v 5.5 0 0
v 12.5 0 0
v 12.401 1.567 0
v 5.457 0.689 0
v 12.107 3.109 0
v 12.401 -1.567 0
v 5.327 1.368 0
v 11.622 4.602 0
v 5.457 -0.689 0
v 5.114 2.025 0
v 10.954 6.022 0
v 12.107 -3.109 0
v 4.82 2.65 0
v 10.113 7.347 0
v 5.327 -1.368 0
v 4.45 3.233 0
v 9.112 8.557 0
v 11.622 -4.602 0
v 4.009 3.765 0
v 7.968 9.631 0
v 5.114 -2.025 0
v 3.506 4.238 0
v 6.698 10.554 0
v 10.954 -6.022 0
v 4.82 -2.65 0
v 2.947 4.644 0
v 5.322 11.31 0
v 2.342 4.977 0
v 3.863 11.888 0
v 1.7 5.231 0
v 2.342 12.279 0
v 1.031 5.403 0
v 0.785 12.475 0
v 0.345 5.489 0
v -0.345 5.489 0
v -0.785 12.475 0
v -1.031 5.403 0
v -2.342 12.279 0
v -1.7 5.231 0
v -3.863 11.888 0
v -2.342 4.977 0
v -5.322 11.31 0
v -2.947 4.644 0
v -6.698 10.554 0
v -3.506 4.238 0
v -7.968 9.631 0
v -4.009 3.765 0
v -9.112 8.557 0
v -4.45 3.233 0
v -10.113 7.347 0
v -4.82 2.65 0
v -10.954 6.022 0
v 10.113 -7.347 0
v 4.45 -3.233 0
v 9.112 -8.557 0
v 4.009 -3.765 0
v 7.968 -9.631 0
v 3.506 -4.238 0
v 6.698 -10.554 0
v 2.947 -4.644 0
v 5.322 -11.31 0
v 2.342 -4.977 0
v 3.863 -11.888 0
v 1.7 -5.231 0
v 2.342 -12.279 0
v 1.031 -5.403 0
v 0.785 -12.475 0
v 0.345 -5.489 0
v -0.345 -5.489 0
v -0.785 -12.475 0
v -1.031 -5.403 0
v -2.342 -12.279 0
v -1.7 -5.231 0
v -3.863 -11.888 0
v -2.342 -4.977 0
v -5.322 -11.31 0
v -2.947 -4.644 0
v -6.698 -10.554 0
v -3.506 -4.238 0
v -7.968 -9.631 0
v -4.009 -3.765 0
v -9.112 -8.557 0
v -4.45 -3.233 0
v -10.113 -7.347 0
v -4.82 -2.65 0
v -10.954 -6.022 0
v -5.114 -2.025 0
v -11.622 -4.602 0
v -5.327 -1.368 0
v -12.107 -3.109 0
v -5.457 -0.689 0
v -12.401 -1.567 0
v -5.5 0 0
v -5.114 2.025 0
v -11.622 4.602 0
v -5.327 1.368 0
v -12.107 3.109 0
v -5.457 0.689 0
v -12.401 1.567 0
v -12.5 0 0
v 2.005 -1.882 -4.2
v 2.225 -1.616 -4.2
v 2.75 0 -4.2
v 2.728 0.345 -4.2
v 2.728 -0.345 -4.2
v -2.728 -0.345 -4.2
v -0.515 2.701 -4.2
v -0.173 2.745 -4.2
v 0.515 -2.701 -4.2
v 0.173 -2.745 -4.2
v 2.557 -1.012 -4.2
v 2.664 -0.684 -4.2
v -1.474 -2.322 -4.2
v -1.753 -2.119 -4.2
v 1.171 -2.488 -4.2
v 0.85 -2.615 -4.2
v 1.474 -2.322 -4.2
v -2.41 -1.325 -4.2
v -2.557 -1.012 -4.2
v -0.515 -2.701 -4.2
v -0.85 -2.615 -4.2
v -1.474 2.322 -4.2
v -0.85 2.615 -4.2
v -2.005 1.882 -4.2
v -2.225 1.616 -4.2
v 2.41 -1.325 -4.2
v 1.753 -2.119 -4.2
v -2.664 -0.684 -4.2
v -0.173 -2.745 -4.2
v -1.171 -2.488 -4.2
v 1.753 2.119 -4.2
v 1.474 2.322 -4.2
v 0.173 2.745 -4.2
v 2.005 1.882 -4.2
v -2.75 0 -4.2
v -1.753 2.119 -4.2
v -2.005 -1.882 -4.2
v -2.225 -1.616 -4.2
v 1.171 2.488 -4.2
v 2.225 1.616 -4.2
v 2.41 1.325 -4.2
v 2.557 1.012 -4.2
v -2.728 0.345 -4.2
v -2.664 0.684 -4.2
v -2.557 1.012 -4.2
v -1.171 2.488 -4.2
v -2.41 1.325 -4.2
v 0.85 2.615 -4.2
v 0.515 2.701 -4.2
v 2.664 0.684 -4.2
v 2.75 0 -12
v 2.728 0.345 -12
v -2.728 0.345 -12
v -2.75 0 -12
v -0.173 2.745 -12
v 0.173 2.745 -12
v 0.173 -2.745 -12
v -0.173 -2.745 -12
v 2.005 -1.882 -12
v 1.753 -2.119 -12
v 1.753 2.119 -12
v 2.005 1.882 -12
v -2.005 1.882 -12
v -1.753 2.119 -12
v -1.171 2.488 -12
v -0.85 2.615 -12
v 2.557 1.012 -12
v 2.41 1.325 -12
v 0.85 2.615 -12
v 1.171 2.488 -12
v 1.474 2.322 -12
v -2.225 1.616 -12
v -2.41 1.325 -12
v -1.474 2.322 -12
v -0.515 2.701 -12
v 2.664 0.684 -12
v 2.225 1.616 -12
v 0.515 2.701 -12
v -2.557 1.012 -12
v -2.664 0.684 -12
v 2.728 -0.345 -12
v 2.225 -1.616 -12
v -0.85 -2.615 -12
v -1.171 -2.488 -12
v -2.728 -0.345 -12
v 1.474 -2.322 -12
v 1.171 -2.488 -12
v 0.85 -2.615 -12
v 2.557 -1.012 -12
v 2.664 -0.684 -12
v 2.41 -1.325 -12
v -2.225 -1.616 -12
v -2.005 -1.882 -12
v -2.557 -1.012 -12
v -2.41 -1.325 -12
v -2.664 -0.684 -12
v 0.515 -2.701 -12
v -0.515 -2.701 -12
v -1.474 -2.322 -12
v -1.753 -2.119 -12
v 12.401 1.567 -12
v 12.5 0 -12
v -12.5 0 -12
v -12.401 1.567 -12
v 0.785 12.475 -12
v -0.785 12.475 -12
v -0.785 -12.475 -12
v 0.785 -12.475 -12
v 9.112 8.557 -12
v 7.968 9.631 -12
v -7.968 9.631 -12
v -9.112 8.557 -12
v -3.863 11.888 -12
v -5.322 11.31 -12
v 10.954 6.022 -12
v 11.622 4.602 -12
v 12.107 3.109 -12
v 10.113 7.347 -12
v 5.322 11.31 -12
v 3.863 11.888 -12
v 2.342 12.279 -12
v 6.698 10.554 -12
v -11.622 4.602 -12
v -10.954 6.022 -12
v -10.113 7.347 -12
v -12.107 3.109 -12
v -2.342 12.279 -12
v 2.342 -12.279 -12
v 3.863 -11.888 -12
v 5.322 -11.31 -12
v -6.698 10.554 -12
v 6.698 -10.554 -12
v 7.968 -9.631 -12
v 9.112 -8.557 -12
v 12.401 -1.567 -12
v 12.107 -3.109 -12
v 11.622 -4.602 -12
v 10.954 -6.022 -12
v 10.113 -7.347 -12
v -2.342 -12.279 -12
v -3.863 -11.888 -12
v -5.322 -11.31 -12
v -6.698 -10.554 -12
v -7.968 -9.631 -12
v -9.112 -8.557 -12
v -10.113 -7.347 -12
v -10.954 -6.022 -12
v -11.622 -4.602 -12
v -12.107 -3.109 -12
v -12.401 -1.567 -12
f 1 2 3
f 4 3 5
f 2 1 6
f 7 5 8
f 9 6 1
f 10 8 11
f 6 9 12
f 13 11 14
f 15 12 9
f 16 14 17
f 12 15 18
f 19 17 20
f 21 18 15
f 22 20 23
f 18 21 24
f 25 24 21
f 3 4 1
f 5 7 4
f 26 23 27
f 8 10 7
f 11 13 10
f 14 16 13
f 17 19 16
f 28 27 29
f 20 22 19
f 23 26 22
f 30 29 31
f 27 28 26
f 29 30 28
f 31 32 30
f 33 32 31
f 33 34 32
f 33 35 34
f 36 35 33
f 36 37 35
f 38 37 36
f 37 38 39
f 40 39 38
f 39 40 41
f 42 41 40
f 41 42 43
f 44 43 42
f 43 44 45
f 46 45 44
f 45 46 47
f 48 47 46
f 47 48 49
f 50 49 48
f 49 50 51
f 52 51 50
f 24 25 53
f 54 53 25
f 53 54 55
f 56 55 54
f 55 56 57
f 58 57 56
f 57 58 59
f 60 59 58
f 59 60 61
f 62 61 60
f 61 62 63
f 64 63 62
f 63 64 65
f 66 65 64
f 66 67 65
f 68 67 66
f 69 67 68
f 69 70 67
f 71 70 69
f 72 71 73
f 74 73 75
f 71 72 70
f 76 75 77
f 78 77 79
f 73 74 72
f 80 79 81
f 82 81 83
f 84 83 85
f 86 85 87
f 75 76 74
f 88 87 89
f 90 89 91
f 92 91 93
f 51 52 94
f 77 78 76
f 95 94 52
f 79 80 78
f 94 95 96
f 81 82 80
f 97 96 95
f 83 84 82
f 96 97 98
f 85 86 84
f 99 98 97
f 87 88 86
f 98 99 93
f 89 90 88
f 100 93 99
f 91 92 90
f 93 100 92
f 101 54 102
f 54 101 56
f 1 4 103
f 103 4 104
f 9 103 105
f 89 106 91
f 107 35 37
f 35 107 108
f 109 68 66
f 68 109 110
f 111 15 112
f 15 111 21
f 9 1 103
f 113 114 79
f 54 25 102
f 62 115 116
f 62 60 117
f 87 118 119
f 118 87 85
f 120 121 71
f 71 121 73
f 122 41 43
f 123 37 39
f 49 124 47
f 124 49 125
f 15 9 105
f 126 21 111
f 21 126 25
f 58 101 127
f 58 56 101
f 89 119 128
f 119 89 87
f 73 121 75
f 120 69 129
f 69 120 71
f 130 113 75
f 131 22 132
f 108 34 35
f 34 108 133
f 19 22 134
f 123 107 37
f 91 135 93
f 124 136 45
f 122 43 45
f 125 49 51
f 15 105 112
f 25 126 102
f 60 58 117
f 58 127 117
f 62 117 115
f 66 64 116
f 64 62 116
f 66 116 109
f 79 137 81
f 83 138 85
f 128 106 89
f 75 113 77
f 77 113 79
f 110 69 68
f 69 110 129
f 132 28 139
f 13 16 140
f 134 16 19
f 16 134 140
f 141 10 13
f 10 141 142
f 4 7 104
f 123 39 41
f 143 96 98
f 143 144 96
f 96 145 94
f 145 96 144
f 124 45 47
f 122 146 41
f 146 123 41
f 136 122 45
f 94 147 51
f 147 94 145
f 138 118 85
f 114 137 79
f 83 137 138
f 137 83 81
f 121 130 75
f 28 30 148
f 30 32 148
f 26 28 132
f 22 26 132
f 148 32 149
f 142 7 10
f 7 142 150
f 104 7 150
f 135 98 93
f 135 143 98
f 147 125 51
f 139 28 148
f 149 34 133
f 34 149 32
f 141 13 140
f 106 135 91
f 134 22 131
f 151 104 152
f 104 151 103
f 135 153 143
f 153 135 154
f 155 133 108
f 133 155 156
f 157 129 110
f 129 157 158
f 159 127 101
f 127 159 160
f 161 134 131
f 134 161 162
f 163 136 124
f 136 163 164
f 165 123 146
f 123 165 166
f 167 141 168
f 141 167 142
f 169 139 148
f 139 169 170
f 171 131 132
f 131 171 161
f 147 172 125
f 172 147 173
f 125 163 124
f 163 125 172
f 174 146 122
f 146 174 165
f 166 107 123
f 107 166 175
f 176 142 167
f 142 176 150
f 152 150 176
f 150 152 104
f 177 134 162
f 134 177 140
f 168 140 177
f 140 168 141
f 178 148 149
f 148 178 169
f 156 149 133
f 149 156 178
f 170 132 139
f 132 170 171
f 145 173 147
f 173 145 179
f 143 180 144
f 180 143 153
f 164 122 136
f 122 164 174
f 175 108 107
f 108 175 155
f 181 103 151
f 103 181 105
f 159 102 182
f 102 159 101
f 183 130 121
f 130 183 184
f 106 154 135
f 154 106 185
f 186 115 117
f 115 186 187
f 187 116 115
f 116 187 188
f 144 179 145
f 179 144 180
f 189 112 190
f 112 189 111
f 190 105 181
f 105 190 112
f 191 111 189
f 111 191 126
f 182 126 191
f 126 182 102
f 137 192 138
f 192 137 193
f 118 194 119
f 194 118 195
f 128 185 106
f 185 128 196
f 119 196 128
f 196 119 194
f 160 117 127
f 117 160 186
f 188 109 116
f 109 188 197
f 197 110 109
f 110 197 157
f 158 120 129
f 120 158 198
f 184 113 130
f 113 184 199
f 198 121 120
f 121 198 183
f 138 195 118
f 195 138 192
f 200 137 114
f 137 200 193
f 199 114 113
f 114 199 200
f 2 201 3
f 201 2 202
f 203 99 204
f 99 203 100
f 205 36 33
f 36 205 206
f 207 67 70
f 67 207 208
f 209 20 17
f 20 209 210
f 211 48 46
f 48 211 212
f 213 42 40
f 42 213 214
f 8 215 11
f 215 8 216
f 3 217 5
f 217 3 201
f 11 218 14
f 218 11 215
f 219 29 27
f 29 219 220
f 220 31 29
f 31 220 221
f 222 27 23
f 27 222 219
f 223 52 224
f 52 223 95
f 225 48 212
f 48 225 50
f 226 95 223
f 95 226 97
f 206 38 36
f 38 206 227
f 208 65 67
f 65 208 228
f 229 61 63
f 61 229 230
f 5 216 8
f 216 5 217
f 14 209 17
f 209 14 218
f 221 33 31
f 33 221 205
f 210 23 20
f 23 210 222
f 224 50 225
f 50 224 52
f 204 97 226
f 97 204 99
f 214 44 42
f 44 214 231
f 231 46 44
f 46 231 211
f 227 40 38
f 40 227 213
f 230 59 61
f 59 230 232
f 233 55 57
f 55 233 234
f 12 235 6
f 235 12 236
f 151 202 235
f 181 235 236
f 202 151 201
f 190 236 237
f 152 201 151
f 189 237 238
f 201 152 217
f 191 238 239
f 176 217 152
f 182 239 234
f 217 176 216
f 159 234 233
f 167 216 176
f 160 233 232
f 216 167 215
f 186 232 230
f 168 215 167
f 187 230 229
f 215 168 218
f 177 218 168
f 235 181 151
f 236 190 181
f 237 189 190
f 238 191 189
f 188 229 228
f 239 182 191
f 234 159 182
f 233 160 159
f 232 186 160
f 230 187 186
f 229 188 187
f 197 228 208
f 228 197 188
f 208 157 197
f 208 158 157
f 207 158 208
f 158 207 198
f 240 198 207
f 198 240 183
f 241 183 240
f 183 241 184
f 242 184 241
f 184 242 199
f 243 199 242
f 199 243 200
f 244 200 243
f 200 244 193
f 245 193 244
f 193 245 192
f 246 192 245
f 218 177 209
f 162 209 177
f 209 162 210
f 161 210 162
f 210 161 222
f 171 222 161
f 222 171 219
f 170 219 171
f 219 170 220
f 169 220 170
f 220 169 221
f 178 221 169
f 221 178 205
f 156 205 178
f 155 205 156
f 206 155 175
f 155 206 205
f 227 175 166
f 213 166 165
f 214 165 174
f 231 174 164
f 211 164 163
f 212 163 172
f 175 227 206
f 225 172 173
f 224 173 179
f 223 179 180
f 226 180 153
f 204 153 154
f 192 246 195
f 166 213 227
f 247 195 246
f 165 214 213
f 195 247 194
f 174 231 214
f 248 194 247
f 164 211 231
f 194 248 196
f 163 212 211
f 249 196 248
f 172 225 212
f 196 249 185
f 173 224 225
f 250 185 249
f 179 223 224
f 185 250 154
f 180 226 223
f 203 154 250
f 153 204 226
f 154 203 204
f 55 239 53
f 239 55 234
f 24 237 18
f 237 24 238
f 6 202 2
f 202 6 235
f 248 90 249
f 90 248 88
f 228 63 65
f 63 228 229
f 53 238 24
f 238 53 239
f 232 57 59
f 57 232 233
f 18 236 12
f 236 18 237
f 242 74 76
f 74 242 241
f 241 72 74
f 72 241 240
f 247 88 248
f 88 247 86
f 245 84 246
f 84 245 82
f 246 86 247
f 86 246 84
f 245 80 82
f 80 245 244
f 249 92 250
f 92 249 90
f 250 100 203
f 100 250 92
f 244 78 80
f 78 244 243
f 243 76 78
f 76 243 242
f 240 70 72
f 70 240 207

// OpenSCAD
$fn = 50;

difference() {
	union() {
		translate(v = [0, 0, -12.0]) {
			cylinder(h = 12, r = 12.5);
		}
	}
	union() {
		translate(v = [0, 0, 0]) {
			rotate(a = [0, 0, 0]) {
				difference() {
					union() {
						translate(v = [0, 0, -15.0]) {
							cylinder(h = 15, r = 2.25);
						}
						translate(v = [0, 0, -4.2]) {
							cylinder(h = 4.2, r1 = 2.75, r2 = 5.5);
						}
						translate(v = [0, 0, -15.0]) {
							cylinder(h = 15, r = 2.75);
						}
						translate(v = [0, 0, -15.0]) {
							cylinder(h = 15, r = 2.25);
						}
					}
					union();
				}
			}
		}
	}
}
